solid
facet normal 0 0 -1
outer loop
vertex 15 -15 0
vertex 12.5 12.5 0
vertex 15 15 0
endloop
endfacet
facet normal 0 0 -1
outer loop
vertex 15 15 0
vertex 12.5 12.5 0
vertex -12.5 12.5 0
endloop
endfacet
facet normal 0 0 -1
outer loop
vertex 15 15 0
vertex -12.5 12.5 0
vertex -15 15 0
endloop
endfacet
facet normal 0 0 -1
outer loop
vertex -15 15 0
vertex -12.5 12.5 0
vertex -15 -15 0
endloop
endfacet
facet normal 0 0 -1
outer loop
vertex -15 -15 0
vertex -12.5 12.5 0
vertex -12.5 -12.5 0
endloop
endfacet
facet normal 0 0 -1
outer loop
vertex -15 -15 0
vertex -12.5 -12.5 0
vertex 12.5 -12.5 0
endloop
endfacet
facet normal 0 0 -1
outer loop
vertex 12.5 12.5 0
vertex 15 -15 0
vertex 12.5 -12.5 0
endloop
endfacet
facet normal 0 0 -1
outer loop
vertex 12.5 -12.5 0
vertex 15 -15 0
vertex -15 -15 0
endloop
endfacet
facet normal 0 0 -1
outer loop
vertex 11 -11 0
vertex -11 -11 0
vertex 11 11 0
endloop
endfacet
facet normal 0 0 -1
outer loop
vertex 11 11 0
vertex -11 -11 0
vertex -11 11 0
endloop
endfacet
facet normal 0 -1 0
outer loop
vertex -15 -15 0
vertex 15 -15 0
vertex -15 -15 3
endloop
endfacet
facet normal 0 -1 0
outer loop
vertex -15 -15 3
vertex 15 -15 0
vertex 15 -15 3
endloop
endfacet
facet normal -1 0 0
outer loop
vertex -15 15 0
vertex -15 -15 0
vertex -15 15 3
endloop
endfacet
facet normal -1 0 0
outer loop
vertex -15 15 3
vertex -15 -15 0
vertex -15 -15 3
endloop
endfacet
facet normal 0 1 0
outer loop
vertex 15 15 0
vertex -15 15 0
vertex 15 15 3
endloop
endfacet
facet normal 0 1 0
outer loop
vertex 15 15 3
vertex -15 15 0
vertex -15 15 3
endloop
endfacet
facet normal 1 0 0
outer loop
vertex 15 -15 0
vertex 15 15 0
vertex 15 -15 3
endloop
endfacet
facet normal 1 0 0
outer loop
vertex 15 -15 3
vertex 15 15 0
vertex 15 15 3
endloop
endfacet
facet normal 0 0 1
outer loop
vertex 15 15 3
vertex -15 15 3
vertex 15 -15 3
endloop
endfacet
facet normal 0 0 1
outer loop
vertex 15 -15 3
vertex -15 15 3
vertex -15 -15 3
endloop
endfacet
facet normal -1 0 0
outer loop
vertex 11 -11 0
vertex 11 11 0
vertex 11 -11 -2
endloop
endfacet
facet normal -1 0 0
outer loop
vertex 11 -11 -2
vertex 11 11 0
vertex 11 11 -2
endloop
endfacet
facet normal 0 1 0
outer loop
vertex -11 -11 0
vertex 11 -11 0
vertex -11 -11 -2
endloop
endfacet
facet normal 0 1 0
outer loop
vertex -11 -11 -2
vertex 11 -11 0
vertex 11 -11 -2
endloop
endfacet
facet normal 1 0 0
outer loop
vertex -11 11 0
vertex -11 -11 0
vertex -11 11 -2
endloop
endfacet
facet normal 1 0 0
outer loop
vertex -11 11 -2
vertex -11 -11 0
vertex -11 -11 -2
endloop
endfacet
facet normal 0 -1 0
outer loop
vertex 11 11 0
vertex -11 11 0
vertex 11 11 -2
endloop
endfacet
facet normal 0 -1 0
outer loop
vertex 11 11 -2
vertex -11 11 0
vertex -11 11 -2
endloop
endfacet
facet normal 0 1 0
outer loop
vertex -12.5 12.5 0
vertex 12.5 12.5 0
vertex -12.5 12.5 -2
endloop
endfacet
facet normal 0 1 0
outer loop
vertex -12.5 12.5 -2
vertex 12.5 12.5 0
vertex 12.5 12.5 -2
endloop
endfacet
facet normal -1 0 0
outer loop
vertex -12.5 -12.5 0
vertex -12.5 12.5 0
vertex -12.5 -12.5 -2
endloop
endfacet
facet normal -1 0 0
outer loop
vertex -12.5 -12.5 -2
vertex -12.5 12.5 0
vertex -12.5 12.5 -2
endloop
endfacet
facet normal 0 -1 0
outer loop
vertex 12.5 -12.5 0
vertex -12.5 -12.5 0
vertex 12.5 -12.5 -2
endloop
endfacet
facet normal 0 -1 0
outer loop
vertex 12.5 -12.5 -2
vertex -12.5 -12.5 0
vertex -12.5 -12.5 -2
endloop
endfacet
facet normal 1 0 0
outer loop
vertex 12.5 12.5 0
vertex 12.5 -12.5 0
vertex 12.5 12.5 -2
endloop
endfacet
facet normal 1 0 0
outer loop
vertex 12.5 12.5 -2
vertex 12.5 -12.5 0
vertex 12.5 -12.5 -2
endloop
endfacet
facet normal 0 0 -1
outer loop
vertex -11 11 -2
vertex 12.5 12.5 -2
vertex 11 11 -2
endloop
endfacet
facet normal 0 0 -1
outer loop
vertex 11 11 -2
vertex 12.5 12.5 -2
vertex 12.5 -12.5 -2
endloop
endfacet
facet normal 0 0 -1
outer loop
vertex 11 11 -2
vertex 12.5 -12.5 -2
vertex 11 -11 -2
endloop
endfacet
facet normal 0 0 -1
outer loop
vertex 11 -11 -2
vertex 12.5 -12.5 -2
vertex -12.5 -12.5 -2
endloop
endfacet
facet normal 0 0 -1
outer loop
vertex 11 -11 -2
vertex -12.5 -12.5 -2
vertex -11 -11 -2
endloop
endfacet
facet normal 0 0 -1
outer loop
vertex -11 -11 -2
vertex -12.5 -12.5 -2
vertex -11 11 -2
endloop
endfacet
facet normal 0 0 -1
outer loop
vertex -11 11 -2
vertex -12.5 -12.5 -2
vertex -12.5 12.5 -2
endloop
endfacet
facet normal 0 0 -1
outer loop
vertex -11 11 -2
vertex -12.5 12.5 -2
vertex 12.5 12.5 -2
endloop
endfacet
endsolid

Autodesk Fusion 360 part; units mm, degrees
sketch "Boceto1" plane through (0, 0, 0) normal (0, 0, 1) x (1, 0, 0)
  line L0 (15, 15) -> (-15, 15)
  line L1 (-15, 15) -> (-15, -15)
  line L2 (-15, -15) -> (15, -15)
  line L3 (15, -15) -> (15, 15)
  line L4 (15, 15) -> (-15, -15) construction
  line L5 (-15, 15) -> (15, -15) construction
  line L6 (12.5, 12.5) -> (-12.5, 12.5)
  line L7 (-12.5, 12.5) -> (-12.5, -12.5)
  line L8 (-12.5, -12.5) -> (12.5, -12.5)
  line L9 (12.5, -12.5) -> (12.5, 12.5)
  line L10 (12.5, 12.5) -> (-12.5, -12.5) construction
  line L11 (-12.5, 12.5) -> (12.5, -12.5) construction
  line L12 (11, -11) -> (-11, -11)
  line L13 (-11, -11) -> (-11, 11)
  line L14 (-11, 11) -> (11, 11)
  line L15 (11, 11) -> (11, -11)
  line L16 (11, -11) -> (-11, 11) construction
  line L17 (-11, -11) -> (11, 11) construction
  dimension "d1" = 30
  dimension "d2" = 30
  dimension "d3" = 25
  dimension "d4" = 25
  dimension "d7" = 22
  dimension "d8" = 22
extrude "Extruir1" add sketch "Boceto1" along normal blind 3 contours L0 L1 L2 L3 | L6 L7 L8 L9 | L12 L13 L14 L15 makes body 1
extrude "Extruir2" add sketch "Boceto1" against normal blind 2 separate body contours L6 L7 L8 L9 makes body 2
combine "Combinar1" operation add target body 2 tool bodies 1
